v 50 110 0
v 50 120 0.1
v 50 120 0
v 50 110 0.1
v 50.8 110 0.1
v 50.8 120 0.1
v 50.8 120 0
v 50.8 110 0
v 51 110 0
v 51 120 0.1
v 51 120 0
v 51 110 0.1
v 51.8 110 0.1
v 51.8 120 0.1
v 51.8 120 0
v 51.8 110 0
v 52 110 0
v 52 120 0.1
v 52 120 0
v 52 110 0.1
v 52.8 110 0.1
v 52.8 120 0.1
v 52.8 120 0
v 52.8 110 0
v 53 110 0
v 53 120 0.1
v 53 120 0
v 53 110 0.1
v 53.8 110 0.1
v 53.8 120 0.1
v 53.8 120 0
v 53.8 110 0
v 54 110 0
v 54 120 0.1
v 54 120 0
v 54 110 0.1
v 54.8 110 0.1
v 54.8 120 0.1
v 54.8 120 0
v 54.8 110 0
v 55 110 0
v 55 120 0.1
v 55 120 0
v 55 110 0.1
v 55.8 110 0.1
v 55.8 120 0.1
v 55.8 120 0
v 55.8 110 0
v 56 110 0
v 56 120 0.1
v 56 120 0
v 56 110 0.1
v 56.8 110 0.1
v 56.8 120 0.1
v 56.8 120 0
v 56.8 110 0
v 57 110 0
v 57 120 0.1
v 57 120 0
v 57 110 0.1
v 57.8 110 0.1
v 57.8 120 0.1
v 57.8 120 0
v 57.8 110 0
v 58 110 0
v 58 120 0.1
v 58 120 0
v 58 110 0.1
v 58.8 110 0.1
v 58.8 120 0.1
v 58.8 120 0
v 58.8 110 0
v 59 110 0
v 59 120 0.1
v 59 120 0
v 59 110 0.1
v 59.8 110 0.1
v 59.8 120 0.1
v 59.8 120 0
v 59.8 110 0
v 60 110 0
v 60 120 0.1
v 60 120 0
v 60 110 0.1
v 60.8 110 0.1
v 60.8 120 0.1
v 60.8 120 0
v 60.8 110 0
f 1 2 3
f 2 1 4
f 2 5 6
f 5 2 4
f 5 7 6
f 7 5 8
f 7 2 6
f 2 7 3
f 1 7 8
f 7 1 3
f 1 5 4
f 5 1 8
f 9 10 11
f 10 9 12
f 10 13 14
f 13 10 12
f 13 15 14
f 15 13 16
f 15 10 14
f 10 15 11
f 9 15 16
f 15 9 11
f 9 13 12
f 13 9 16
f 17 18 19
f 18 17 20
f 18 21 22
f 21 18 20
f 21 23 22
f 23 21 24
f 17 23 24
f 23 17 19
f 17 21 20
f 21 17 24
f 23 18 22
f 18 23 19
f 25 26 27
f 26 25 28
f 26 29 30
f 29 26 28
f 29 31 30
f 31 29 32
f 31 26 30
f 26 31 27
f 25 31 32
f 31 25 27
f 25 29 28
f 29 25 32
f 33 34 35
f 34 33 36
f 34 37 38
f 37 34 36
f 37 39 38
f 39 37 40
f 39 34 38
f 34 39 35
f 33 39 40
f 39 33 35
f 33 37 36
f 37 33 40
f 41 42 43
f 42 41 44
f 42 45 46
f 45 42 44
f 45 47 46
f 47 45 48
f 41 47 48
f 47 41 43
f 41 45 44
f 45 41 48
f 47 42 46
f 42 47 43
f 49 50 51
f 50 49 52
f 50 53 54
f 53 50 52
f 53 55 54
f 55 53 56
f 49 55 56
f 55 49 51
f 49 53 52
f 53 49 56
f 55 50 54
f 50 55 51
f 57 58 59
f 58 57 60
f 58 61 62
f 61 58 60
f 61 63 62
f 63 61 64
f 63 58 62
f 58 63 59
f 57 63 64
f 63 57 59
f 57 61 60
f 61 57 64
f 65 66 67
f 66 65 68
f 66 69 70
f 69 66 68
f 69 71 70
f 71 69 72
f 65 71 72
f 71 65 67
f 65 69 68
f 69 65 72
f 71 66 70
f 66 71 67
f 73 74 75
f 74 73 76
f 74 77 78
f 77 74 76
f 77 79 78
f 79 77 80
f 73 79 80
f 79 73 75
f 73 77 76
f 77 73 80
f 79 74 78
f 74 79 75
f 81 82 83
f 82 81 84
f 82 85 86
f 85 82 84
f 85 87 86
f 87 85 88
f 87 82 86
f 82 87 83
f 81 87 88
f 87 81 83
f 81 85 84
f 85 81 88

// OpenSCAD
translate([10+40,10+100,0])
        for (i = [0 : 10]){
            translate([i,0,0])
                cube(size = [0.8,10,0.1]);
    }
